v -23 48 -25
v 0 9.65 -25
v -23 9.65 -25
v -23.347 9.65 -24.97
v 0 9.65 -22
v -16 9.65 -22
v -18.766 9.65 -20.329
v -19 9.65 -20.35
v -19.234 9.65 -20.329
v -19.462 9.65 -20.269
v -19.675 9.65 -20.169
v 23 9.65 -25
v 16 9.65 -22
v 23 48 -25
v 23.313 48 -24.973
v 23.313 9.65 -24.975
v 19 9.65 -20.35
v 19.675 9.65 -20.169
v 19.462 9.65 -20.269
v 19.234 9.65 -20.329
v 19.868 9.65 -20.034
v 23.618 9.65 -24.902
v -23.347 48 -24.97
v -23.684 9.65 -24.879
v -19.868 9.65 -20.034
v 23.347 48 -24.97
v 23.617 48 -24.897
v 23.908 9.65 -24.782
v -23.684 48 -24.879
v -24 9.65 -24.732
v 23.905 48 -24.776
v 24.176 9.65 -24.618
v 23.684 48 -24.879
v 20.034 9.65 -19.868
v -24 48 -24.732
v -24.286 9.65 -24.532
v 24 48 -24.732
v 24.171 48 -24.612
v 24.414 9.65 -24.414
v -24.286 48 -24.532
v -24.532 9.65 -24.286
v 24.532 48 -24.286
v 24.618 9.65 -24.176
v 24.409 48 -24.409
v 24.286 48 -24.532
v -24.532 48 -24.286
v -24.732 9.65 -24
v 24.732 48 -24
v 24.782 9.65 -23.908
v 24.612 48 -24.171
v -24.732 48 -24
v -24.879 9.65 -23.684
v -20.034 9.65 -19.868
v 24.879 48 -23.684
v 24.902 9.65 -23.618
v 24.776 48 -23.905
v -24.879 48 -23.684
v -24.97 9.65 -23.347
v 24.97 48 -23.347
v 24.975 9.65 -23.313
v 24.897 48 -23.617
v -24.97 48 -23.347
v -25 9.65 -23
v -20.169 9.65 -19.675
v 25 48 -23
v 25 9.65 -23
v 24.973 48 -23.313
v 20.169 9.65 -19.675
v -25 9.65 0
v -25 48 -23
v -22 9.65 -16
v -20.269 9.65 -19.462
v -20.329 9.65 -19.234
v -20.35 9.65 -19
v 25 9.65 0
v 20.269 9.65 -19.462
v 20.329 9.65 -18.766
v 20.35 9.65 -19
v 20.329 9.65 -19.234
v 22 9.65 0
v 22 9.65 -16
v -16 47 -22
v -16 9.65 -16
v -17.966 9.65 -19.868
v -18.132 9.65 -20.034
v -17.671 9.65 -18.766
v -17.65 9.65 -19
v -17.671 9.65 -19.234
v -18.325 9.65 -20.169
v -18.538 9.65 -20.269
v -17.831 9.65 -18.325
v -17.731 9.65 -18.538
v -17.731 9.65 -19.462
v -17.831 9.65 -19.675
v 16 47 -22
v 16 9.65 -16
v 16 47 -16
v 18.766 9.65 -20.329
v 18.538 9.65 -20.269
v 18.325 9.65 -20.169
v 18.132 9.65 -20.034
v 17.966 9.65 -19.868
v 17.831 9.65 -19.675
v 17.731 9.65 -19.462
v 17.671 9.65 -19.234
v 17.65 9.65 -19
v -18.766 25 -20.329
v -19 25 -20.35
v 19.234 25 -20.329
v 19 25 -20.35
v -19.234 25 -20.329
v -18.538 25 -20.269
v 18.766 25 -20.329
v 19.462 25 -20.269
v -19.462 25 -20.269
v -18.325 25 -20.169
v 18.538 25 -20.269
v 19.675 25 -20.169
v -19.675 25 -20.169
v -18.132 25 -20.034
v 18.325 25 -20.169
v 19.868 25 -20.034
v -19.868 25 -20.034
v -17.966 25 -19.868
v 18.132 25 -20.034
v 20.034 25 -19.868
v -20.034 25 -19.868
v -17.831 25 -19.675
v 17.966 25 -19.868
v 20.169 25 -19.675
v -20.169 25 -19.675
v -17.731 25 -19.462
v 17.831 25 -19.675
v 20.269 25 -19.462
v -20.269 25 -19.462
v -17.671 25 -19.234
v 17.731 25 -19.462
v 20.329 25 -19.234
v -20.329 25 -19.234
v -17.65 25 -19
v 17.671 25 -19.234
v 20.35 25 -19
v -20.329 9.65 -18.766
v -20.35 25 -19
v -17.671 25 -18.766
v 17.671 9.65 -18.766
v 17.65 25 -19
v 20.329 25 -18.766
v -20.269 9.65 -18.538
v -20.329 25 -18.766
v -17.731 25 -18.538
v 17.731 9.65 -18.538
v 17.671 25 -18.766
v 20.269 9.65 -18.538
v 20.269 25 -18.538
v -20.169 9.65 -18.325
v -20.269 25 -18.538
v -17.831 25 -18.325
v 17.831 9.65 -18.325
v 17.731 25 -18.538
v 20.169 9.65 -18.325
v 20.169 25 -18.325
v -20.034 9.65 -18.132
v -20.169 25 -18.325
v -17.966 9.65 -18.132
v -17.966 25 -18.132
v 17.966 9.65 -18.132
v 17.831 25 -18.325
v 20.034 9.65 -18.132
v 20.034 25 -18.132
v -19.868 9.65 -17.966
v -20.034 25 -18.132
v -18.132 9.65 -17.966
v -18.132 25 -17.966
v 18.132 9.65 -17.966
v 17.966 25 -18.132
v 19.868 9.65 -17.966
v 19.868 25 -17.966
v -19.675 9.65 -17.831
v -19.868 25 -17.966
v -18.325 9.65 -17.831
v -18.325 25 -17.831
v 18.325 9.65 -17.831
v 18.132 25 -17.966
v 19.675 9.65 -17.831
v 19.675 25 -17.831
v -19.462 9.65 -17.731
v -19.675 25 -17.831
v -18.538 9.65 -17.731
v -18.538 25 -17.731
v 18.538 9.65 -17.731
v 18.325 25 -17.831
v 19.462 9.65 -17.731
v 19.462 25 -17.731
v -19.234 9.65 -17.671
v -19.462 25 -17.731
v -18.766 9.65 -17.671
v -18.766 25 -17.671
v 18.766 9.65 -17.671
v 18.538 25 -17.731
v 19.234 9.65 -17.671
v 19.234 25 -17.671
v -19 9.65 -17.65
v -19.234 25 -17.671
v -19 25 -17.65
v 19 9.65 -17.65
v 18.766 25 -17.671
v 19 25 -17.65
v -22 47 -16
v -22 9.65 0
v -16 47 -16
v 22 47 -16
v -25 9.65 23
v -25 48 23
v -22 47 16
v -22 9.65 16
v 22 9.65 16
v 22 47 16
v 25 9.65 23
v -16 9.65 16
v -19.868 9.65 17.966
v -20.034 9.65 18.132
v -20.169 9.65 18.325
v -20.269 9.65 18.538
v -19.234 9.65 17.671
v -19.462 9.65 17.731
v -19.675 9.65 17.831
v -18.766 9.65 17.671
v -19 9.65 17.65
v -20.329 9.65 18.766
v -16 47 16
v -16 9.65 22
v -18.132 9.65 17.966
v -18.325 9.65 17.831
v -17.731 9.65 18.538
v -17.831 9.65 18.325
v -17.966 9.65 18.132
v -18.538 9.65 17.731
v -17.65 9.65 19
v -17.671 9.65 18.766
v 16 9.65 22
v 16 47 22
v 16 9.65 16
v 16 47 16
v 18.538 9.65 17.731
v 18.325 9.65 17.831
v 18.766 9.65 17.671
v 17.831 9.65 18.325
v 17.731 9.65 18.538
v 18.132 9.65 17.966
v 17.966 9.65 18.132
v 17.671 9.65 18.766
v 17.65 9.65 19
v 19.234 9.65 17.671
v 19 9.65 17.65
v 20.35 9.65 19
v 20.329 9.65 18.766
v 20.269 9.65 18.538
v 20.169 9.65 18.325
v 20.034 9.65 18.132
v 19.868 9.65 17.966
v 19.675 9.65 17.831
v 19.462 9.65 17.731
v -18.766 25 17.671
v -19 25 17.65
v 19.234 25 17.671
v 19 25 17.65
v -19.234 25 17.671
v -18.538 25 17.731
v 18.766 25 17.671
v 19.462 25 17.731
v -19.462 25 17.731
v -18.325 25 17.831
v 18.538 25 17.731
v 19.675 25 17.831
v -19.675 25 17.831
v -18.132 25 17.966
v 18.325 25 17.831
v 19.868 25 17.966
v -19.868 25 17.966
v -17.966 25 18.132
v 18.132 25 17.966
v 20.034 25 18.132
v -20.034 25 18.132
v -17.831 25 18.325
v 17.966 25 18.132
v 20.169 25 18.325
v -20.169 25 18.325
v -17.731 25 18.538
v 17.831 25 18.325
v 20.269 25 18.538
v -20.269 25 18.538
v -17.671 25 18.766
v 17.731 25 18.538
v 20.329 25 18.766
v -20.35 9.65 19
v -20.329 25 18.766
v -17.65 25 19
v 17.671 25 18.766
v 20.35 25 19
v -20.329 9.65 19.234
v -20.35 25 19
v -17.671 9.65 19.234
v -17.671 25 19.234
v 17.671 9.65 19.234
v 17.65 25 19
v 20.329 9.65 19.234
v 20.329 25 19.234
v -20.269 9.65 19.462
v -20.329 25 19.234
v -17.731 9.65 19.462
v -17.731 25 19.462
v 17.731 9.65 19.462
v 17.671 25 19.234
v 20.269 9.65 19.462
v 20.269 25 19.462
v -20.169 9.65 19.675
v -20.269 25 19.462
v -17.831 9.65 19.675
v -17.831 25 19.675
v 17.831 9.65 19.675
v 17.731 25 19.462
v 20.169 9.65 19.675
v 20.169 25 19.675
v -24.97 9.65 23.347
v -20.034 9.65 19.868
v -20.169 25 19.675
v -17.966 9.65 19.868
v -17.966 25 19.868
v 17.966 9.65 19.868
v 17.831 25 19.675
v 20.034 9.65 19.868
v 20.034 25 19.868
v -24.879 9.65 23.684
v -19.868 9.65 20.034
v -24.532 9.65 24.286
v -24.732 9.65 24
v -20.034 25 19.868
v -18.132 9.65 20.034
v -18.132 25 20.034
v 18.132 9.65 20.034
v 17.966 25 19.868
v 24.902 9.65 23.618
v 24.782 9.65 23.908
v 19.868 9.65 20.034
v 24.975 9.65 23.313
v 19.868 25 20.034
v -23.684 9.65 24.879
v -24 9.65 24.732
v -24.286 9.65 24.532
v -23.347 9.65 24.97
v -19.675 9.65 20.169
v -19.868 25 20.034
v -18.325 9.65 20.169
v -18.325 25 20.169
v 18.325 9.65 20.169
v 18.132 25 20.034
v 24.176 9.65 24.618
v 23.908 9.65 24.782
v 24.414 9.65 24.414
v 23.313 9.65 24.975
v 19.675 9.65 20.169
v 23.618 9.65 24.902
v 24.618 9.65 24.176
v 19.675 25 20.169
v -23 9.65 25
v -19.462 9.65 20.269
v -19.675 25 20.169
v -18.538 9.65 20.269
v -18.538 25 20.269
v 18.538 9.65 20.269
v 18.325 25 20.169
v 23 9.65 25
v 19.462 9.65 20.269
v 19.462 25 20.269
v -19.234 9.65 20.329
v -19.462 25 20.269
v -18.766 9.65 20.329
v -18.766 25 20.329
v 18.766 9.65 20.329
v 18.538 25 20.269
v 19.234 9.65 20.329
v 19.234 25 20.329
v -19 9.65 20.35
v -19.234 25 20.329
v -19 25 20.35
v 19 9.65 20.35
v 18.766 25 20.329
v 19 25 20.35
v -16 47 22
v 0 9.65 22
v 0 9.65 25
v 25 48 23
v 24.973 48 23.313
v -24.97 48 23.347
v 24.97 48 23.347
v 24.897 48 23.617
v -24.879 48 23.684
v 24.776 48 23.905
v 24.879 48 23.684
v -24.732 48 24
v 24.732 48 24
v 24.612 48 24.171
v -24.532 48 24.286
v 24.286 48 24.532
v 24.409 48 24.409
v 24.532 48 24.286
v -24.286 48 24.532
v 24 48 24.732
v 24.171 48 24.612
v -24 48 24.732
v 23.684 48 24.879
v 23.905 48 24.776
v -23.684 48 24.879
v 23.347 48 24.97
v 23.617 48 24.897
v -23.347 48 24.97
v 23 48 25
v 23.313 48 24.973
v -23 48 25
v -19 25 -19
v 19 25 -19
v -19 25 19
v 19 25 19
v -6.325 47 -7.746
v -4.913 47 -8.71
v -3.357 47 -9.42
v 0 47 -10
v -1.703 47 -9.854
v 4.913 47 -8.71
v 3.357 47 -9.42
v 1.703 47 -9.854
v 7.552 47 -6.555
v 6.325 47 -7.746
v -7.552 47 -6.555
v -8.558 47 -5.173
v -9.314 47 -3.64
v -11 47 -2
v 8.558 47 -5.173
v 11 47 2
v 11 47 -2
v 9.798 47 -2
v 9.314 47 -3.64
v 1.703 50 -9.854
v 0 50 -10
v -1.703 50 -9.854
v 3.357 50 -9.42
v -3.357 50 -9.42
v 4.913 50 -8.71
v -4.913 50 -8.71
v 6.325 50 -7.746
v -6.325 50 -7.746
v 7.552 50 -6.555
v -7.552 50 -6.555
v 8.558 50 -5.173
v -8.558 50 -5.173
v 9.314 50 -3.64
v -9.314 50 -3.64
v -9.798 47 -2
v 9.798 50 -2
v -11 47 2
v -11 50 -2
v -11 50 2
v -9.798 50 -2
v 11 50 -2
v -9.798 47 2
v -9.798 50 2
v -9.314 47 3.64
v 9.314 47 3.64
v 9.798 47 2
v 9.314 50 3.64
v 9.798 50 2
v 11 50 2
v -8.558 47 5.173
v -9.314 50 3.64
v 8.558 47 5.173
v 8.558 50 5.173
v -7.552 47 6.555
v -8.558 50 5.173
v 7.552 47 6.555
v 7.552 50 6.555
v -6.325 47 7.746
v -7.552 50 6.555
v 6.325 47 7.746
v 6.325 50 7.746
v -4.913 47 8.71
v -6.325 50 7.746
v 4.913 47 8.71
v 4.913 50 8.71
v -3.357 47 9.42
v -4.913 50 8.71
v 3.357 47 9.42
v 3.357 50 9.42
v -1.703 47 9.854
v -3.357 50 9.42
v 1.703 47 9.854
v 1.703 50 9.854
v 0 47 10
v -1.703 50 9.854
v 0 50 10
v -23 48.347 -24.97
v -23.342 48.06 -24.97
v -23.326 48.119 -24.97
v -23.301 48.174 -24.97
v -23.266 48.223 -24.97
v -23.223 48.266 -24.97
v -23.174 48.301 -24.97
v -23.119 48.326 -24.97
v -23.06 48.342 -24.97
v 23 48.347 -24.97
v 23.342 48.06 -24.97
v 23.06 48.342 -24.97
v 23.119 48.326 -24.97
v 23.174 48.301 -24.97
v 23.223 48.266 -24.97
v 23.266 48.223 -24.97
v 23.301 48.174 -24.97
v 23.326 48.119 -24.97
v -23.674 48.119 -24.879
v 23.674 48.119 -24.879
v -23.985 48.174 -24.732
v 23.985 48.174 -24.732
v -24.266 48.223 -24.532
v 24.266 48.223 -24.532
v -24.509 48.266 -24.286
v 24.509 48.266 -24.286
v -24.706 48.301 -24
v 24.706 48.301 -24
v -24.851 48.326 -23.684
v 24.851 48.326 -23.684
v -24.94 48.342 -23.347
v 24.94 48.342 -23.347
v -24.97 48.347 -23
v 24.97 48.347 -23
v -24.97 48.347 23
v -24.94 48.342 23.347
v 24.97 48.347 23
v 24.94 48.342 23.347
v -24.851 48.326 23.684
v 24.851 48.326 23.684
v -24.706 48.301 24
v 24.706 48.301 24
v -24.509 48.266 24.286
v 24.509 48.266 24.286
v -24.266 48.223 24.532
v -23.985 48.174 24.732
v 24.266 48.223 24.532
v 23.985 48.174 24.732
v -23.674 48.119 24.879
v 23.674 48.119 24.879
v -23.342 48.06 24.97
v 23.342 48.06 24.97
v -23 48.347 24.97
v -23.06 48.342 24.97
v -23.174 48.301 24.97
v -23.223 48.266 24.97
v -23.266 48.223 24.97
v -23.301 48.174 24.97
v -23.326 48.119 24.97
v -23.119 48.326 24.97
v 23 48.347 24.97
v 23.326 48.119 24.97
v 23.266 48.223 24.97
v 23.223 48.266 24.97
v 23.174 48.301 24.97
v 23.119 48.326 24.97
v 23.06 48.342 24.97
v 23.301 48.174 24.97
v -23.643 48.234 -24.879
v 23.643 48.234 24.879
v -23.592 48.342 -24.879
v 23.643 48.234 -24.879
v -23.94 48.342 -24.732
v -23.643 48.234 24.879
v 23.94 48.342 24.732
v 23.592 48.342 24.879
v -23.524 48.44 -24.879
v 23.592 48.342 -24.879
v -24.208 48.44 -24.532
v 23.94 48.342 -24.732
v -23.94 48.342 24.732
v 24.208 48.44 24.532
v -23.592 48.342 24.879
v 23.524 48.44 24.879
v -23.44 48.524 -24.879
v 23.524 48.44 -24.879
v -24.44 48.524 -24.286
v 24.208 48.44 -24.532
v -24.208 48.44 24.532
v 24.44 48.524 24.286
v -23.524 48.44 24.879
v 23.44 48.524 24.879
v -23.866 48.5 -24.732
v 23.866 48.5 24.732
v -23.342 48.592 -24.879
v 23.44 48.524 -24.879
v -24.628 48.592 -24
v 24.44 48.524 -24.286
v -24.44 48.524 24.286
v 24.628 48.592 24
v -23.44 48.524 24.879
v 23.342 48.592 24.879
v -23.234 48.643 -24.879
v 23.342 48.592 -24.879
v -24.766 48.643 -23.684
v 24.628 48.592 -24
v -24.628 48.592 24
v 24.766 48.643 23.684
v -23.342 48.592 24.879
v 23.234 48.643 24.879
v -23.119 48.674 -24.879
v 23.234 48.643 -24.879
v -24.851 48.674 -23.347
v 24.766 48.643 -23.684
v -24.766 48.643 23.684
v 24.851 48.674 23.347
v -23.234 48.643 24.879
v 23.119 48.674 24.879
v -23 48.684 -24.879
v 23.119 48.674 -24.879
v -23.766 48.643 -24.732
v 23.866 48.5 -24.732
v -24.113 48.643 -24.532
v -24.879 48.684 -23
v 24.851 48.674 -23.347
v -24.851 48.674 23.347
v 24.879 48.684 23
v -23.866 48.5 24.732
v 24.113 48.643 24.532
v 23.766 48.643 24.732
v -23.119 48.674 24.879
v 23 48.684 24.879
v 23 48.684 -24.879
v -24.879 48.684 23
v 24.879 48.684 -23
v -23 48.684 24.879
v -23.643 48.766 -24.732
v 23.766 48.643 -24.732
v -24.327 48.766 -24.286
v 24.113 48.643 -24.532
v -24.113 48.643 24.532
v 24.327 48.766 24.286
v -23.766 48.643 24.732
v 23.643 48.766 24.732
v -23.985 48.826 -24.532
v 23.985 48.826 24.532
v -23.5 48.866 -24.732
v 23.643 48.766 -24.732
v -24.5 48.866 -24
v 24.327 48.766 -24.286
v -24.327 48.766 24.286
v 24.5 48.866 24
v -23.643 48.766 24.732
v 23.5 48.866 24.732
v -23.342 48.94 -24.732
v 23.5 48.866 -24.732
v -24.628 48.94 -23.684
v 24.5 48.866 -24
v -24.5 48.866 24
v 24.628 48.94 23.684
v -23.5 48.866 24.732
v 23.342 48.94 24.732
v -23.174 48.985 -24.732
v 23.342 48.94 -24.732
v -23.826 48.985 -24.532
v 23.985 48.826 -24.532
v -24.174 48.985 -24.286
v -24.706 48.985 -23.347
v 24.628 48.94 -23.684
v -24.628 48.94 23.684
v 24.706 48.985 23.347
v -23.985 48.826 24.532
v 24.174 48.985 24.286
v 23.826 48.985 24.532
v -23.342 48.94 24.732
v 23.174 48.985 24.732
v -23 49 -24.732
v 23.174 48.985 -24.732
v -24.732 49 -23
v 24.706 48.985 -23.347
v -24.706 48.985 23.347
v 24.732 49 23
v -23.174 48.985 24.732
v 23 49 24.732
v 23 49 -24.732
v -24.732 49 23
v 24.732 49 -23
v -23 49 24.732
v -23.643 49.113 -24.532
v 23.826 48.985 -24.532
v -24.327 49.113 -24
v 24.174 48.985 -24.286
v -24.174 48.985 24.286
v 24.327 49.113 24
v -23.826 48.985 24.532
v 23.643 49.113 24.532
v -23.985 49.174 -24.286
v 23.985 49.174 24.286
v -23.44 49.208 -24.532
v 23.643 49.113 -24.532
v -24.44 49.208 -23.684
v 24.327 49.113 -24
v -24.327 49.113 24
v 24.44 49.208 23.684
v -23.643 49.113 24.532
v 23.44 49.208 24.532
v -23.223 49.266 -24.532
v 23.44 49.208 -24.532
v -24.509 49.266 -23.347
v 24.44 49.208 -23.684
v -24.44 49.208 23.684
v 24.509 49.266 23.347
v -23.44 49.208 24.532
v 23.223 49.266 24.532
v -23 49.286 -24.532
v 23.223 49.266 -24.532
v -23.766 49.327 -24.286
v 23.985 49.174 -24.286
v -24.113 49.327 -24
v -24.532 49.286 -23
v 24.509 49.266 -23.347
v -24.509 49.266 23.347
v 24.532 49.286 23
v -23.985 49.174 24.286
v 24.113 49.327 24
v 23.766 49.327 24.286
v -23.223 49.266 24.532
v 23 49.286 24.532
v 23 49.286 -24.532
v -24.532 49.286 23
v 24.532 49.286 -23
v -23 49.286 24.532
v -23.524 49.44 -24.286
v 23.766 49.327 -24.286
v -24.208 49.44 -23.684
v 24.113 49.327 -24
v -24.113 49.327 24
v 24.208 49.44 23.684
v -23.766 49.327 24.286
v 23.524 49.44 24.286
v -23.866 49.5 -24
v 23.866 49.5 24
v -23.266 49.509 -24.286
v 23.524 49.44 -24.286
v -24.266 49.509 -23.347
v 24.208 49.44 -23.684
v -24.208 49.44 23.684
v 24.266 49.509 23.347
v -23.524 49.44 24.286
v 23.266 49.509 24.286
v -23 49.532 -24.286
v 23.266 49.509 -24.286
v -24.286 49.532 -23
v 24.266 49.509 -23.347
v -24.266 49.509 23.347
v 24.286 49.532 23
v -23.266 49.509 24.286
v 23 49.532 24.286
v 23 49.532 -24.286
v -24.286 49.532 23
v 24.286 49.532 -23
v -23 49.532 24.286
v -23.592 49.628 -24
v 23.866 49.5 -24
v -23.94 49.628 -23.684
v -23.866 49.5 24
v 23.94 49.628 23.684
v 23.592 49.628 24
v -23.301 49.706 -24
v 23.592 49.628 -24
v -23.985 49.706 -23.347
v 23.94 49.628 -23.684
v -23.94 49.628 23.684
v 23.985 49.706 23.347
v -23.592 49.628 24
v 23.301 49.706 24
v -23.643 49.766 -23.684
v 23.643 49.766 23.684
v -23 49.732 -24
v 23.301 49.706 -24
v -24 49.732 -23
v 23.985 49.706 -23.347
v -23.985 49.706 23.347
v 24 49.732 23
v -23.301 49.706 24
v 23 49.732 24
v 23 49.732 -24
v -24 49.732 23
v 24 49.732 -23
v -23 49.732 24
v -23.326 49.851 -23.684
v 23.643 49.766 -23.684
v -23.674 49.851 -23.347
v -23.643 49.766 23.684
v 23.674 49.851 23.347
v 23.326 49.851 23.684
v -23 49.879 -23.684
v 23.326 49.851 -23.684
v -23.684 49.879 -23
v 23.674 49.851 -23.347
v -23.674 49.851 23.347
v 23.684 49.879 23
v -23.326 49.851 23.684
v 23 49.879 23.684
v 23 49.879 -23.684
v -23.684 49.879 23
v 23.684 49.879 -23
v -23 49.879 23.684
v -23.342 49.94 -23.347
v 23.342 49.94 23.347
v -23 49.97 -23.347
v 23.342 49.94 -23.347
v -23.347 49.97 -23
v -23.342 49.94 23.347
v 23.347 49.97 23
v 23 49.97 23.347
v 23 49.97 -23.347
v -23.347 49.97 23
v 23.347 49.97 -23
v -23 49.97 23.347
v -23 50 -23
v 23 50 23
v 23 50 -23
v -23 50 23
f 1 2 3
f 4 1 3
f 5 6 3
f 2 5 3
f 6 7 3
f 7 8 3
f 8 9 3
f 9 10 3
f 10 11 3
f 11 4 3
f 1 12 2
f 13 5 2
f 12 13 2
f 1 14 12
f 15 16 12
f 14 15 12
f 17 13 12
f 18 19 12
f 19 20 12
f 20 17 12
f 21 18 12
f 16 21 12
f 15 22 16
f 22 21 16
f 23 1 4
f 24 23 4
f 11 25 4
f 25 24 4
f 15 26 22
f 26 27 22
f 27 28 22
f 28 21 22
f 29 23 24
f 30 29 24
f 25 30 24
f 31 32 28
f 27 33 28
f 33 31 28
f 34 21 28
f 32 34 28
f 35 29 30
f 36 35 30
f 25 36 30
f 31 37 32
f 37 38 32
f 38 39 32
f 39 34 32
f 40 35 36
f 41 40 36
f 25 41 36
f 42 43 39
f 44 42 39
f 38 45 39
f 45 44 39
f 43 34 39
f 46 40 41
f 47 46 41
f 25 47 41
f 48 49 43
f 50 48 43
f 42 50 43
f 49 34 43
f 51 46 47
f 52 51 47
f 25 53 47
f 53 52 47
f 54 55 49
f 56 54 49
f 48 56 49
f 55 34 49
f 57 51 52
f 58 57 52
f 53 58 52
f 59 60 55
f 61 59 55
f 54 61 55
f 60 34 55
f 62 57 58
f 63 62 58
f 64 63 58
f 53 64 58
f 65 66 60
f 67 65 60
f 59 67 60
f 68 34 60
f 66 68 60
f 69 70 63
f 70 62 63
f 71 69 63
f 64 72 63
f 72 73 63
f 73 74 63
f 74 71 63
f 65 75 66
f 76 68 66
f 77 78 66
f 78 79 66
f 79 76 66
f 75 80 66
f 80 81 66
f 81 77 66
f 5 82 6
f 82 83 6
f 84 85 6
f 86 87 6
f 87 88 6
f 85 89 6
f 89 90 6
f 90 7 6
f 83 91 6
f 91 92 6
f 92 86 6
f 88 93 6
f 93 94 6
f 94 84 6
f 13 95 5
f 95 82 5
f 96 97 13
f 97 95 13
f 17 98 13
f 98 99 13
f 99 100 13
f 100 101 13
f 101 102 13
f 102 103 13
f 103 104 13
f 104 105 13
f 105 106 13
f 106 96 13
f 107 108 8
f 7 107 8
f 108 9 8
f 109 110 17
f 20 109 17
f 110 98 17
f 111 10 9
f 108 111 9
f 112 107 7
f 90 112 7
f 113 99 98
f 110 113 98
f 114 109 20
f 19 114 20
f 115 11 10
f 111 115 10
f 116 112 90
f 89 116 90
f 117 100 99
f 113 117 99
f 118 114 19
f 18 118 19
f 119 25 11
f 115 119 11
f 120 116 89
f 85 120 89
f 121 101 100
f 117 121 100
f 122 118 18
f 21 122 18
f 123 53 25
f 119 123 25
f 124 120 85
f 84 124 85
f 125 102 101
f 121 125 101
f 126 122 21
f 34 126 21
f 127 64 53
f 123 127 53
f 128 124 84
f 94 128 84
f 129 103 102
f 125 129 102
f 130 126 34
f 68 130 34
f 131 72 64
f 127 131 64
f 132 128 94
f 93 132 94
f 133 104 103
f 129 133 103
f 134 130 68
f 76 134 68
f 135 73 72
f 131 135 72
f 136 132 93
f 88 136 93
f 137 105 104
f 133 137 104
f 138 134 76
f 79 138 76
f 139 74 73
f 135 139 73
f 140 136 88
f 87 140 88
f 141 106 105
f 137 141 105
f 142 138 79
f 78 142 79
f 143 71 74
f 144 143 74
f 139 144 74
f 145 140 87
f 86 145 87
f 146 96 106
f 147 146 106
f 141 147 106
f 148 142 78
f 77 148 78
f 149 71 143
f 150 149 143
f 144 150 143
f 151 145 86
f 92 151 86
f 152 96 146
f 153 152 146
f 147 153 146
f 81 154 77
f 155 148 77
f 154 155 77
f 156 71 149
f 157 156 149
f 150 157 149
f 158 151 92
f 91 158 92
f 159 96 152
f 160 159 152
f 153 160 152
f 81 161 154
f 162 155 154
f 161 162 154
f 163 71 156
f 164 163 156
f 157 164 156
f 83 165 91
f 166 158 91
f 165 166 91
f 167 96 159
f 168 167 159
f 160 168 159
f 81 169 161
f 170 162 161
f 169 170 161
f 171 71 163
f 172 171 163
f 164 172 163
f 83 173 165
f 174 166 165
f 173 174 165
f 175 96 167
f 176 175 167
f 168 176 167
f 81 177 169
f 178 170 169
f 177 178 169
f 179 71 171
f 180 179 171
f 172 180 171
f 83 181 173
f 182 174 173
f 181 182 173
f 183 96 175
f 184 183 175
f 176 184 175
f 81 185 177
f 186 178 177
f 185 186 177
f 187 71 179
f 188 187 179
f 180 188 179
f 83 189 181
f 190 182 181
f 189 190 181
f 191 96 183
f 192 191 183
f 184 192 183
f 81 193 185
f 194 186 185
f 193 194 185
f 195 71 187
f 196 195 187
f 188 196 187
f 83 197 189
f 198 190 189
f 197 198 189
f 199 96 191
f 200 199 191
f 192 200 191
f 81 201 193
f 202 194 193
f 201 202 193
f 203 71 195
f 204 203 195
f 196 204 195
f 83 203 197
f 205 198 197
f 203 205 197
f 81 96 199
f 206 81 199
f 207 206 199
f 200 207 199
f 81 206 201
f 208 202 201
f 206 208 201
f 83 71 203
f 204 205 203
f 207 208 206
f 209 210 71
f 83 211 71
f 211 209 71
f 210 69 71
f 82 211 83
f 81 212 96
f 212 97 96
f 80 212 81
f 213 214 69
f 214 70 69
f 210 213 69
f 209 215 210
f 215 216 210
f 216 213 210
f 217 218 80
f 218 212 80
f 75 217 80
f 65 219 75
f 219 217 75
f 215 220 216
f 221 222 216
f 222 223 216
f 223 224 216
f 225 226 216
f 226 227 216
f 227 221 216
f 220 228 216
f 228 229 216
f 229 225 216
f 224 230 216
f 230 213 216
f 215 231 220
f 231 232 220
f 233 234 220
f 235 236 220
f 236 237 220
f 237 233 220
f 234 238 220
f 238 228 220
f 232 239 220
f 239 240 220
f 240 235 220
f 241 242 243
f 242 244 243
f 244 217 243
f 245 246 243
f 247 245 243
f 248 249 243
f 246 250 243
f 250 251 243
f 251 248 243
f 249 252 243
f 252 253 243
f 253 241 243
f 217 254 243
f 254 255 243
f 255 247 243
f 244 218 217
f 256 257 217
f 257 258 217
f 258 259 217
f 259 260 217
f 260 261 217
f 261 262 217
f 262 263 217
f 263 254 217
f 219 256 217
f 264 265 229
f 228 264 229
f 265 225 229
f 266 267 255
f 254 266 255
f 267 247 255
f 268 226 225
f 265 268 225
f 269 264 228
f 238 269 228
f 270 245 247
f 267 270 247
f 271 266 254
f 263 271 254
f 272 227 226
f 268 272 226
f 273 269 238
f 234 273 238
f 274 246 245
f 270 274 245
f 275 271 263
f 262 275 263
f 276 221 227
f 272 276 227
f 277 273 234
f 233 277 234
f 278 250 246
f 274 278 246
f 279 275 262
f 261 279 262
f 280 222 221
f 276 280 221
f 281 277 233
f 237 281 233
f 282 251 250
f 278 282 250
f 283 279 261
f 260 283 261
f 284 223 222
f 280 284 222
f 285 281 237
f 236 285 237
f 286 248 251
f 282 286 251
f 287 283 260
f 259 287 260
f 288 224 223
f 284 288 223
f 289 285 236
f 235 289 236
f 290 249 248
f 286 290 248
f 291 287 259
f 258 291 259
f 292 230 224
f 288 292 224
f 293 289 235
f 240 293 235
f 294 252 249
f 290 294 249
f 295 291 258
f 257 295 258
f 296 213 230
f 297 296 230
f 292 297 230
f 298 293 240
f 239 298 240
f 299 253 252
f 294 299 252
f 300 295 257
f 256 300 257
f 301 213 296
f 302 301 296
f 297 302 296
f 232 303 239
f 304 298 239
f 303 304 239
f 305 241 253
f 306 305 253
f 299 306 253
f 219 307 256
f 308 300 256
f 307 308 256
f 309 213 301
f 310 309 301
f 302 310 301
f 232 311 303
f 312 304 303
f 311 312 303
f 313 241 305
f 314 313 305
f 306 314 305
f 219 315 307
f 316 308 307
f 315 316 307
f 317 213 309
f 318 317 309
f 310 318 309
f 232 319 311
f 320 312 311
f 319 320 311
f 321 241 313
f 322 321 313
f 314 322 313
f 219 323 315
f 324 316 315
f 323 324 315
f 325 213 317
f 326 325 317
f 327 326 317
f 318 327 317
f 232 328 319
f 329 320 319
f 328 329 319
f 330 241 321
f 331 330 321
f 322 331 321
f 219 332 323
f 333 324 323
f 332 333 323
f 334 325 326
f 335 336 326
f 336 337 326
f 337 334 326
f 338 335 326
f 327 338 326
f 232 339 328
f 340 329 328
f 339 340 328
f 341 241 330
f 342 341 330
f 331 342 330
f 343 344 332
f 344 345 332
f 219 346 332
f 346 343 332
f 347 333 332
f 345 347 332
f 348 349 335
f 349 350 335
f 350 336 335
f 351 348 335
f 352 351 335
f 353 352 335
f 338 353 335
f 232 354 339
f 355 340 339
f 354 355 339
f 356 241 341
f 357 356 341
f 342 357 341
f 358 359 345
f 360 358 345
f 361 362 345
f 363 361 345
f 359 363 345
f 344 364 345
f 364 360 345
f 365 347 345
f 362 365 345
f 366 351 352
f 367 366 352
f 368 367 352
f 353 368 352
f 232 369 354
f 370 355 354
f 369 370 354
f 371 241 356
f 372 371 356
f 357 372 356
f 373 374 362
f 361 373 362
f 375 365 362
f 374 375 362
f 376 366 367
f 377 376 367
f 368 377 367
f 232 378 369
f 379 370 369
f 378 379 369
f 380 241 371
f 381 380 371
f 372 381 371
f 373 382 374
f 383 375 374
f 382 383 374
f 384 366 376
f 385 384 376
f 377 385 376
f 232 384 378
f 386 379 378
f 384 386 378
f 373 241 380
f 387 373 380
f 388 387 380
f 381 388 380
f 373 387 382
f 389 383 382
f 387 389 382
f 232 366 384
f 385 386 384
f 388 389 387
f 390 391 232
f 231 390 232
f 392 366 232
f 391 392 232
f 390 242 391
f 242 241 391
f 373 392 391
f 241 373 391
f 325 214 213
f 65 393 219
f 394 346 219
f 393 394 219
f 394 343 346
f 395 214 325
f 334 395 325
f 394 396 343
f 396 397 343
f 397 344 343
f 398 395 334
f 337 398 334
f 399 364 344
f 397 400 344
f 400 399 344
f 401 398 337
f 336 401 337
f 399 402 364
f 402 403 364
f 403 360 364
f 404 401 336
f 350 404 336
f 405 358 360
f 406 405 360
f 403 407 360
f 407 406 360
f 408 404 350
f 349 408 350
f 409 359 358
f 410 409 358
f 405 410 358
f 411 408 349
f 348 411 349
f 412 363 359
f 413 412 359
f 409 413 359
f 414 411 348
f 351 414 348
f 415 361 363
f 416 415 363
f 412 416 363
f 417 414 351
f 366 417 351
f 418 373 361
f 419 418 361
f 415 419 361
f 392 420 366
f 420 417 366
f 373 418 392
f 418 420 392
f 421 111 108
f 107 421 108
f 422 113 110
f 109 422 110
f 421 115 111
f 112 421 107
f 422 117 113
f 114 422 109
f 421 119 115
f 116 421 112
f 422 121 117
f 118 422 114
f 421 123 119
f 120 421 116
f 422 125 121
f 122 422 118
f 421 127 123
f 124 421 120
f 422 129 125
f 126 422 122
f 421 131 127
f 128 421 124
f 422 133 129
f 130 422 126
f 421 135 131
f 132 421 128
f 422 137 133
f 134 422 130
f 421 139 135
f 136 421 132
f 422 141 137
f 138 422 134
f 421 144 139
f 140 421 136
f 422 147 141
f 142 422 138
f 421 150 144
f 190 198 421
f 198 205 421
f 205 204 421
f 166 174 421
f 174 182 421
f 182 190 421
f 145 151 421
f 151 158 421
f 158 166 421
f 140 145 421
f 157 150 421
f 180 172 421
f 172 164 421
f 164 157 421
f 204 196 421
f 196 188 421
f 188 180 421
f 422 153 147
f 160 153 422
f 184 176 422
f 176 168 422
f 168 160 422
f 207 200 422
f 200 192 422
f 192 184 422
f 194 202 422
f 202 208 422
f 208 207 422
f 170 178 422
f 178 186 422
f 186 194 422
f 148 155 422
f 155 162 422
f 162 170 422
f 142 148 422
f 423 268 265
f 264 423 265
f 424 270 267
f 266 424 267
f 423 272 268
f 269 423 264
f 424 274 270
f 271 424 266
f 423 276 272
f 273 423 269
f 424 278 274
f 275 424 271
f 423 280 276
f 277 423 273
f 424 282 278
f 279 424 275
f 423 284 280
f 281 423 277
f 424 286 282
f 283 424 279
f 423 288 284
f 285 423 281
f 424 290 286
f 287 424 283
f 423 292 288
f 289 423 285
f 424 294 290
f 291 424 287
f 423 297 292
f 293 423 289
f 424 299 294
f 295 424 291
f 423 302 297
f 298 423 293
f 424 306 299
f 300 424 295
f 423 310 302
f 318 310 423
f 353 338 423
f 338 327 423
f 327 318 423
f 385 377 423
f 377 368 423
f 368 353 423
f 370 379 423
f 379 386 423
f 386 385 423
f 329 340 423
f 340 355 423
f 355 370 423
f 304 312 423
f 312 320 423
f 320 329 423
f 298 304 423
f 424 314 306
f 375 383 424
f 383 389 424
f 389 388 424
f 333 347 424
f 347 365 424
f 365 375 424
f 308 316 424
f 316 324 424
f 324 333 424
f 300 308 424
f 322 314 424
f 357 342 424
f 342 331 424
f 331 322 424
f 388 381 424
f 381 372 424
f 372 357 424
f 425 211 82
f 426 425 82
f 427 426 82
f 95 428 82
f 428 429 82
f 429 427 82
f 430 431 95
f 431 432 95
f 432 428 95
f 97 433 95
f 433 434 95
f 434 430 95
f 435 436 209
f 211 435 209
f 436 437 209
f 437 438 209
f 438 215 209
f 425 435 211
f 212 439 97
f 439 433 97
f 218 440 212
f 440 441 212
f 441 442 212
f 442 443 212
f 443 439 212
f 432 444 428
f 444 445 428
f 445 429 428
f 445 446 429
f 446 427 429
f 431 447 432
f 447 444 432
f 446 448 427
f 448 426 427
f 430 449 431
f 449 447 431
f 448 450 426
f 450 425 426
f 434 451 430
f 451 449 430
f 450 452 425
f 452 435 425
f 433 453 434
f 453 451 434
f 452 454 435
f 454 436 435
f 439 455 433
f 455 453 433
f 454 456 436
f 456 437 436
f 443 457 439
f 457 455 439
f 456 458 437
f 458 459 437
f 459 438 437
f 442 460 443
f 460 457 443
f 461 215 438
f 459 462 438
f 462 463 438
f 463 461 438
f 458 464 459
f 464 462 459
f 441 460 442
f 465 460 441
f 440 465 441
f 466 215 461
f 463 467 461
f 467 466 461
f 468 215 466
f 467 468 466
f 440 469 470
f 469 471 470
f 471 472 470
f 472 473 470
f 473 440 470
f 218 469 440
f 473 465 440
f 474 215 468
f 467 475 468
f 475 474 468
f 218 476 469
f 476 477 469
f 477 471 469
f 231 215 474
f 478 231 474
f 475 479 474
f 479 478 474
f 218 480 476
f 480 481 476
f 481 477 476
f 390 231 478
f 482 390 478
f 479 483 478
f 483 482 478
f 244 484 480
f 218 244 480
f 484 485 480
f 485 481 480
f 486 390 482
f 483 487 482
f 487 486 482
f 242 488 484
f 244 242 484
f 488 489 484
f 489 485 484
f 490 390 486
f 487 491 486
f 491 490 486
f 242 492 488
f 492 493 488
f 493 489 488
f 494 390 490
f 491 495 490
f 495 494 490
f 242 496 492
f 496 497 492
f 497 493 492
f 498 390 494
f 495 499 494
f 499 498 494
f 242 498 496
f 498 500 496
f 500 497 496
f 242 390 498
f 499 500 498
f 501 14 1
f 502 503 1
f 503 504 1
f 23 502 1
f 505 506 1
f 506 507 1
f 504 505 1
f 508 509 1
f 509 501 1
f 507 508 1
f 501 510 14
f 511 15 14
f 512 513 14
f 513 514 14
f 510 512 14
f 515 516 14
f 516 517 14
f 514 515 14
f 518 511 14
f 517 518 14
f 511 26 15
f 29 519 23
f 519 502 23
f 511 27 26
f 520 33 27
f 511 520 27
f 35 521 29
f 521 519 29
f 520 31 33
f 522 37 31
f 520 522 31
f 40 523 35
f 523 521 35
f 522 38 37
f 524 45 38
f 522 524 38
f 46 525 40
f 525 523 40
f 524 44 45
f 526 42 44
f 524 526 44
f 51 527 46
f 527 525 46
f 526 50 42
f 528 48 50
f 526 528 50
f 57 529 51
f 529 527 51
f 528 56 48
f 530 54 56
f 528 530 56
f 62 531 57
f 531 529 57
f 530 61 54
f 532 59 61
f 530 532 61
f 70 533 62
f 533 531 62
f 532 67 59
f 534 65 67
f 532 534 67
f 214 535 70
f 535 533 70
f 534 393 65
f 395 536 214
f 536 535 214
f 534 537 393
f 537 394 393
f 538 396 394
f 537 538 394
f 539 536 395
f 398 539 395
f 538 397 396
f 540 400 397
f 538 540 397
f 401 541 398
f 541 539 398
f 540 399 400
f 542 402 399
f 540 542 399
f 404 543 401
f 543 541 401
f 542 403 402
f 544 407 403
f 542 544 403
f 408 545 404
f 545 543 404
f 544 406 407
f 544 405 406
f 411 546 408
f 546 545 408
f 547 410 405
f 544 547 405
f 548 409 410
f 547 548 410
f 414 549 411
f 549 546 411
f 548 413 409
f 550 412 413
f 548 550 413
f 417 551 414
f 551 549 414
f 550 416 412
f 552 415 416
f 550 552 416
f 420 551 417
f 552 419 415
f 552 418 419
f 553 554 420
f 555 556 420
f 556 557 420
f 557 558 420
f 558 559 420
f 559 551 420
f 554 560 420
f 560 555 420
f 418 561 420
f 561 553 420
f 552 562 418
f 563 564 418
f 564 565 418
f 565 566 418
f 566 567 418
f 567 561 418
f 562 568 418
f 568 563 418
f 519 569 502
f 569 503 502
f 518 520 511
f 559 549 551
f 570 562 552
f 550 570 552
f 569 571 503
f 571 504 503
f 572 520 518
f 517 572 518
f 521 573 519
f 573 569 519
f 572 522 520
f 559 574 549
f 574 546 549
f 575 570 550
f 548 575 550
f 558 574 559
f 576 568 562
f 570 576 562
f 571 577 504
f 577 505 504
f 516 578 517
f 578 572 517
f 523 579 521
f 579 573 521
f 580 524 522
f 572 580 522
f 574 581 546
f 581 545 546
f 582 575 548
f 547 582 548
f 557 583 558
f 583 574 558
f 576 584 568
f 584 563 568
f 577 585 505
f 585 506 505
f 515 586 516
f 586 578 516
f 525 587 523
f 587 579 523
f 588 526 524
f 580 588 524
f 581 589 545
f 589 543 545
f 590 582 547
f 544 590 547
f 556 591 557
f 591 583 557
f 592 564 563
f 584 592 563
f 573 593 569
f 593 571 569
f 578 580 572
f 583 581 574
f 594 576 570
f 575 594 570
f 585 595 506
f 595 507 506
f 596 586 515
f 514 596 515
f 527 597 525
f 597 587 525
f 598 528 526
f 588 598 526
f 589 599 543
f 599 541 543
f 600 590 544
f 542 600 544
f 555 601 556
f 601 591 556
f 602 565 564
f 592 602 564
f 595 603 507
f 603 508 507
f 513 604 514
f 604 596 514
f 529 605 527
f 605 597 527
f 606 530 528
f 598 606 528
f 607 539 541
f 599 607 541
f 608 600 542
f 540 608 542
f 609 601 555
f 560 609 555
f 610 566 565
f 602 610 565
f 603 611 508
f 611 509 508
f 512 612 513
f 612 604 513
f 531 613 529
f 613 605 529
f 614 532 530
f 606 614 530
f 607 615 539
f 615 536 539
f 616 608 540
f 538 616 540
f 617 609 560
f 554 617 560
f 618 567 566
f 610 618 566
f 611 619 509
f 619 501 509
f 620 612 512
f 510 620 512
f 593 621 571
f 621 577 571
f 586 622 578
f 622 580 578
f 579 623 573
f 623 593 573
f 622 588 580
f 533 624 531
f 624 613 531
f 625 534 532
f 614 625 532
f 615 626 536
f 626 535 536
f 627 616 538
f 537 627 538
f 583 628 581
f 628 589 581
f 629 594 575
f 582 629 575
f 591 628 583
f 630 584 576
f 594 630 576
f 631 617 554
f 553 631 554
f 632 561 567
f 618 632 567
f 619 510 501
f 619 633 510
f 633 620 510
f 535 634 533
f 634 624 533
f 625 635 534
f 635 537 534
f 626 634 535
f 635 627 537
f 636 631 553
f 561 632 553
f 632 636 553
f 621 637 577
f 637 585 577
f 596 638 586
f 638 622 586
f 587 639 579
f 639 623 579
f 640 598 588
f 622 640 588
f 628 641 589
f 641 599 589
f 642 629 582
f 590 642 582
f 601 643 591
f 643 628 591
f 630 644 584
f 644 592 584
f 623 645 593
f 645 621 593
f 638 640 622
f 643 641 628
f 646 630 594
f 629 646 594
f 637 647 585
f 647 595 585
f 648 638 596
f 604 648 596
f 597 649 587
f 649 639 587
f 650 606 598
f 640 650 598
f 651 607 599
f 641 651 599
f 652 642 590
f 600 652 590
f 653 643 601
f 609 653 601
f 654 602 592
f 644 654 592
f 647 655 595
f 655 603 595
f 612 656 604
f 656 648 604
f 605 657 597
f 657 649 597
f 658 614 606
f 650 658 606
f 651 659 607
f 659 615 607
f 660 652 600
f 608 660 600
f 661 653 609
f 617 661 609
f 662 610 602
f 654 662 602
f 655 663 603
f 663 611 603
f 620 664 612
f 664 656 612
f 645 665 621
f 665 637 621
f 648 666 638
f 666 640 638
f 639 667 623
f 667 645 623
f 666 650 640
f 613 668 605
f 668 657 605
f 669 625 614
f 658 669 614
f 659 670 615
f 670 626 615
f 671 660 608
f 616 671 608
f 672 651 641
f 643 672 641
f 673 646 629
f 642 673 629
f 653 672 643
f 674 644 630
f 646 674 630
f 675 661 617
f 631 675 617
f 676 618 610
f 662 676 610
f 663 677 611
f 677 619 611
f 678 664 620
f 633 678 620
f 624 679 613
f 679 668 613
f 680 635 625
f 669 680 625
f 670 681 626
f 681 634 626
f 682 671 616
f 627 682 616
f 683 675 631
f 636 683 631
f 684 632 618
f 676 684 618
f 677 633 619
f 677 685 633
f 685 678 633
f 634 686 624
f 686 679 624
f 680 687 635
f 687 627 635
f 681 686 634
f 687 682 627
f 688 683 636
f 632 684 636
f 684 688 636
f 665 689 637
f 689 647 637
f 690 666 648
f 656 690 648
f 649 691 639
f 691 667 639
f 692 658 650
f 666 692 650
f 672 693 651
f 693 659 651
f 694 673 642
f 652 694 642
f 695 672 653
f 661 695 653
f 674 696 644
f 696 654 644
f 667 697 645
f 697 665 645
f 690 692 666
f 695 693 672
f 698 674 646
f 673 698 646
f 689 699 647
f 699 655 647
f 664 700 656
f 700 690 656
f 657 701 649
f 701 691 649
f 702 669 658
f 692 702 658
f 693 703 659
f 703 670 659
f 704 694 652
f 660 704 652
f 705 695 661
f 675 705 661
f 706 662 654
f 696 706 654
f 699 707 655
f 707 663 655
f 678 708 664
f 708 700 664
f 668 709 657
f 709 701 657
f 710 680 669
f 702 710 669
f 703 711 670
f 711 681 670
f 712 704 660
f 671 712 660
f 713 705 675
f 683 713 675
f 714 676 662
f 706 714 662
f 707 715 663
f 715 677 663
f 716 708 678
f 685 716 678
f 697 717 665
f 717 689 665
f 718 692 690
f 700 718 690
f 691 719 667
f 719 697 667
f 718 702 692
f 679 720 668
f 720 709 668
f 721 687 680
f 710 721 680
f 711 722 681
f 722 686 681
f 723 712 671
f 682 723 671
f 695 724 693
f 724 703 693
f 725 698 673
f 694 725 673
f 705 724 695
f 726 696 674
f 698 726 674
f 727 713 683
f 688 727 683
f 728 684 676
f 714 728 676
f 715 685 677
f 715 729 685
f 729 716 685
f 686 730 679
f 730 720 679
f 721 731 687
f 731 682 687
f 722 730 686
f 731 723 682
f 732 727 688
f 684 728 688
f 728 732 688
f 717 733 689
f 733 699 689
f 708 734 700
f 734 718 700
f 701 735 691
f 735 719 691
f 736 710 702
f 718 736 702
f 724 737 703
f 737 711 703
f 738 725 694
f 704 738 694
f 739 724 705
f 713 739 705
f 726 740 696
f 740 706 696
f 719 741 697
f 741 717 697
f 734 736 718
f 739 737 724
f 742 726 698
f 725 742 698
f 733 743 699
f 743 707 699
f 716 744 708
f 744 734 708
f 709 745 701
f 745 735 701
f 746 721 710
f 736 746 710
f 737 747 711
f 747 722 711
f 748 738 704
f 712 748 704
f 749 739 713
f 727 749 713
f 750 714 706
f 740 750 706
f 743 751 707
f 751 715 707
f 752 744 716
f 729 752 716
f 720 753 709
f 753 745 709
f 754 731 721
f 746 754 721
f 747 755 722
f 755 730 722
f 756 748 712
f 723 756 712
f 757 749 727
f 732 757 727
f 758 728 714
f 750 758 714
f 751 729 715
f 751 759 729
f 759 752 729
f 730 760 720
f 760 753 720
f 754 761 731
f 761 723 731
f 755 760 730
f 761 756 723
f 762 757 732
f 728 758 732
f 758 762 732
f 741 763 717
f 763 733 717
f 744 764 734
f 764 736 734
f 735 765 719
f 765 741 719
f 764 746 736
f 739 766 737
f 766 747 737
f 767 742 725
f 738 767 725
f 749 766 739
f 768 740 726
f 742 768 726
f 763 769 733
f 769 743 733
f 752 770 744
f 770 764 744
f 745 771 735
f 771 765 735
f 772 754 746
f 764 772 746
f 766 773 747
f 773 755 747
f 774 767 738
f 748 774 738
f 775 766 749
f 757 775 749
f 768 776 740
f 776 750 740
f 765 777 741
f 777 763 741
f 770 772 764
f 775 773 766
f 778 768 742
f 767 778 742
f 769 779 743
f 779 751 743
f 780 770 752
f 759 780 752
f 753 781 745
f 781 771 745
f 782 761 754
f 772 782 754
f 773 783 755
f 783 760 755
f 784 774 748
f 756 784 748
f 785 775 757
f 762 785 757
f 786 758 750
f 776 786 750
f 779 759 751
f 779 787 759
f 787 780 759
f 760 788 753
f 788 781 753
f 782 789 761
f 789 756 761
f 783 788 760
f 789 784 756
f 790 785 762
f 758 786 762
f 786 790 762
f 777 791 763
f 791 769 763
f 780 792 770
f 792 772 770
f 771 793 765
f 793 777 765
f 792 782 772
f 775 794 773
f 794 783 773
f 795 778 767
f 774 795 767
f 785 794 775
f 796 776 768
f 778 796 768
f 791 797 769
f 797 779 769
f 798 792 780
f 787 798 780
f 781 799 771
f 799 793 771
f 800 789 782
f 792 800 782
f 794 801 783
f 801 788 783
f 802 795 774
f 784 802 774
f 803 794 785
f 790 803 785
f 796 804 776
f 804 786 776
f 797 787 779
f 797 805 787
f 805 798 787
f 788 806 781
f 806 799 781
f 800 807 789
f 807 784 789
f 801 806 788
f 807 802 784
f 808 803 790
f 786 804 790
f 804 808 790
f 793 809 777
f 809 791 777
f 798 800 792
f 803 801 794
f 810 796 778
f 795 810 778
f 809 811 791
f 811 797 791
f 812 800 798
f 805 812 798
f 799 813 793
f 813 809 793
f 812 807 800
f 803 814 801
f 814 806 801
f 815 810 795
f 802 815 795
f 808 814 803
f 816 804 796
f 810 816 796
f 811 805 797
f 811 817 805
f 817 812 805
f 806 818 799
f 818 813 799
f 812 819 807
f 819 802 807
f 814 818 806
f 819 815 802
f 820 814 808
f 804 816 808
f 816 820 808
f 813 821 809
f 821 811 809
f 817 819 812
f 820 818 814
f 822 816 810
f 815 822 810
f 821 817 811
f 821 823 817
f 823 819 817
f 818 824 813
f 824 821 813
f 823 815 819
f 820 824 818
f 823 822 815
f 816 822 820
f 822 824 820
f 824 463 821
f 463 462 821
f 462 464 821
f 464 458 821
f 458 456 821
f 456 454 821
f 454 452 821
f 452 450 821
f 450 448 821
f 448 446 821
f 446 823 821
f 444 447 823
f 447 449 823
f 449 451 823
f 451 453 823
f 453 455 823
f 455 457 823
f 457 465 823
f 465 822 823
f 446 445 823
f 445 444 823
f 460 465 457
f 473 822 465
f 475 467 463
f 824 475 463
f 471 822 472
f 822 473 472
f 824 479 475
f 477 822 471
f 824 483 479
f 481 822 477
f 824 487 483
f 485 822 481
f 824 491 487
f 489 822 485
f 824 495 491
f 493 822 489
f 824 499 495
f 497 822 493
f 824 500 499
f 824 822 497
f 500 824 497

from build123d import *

# Parameters (mm, degrees)
SKETCH1_W           = 50
SKETCH1_H           = 50
BOSS_EXTRUDE1_DEPTH = 50
SHELL1_T            = -3
FILLET1_R           = 2
SKETCH3_W           = 6
SKETCH3_H           = 6
BOSS_EXTRUDE2_DEPTH = 47
SKETCH4_R           = 1.25
CUT_EXTRUDE1_DEPTH  = 25
SKETCH5_R           = 10
CUT_EXTRUDE2_DEPTH  = 51
SKETCH8_W           = 22
SKETCH8_H           = 4
CUT_EXTRUDE4_DEPTH  = 51
SKETCH9_W           = 50
SKETCH9_H           = 9.65
CUT_EXTRUDE5_DEPTH  = 51


with BuildPart() as part:
    # Sketch1 → Boss-Extrude1 (new body)
    with BuildSketch(Plane(origin=(0, 0, 0), x_dir=(1, 0, 0), z_dir=(0, 1, 0))):
        Rectangle(SKETCH1_W, SKETCH1_H)
    extrude(amount=BOSS_EXTRUDE1_DEPTH)

    # Shell1
    shell1_openings = [part.faces().sort_by_distance(p)[0] for p in [
        (0, 0, 0),
    ]]
    offset(amount=SHELL1_T, openings=shell1_openings, kind=Kind.INTERSECTION)

    # Fillet1
    fillet1_edges = [part.edges().sort_by_distance(p)[0] for p in [
        (-25, 50, 0),
        (0, 50, 25),
        (25, 50, 0),
        (0, 50, -25),
        (25, 25, 25),
        (-25, 25, 25),
        (-25, 25, -25),
        (25, 25, -25),
    ]]
    fillet(fillet1_edges, radius=FILLET1_R)

    # Sketch3 → Boss-Extrude2 (add)
    with BuildSketch(Plane.XZ.offset(-47)):
        with Locations((19, 19)):
            Rectangle(SKETCH3_W, SKETCH3_H)
        with Locations((-19, 19)):
            Rectangle(SKETCH3_W, SKETCH3_H)
        with Locations((19, -19)):
            Rectangle(SKETCH3_W, SKETCH3_H)
        with Locations((-19, -19)):
            Rectangle(SKETCH3_W, SKETCH3_H)
    extrude(amount=BOSS_EXTRUDE2_DEPTH)

    # Sketch4 → Cut-Extrude1 (cut)
    with BuildSketch(Plane.XZ):
        with Locations((-19, 19)):
            Circle(SKETCH4_R)
        with Locations((19, 19)):
            Circle(SKETCH4_R)
        with Locations((19, -19)):
            Circle(SKETCH4_R)
        with Locations((-19, -19)):
            Circle(SKETCH4_R)
    extrude(amount=-CUT_EXTRUDE1_DEPTH, mode=Mode.SUBTRACT)

    # Sketch5 → Cut-Extrude2 (cut, through all)
    with BuildSketch(Plane(origin=(0, 50, 0), x_dir=(1, 0, 0), z_dir=(0, 1, 0))):
        Circle(SKETCH5_R)
    extrude(amount=-CUT_EXTRUDE2_DEPTH, mode=Mode.SUBTRACT)

    # Sketch8 → Cut-Extrude4 (cut, through all)
    with BuildSketch(Plane(origin=(0, 50, 0), x_dir=(1, 0, 0), z_dir=(0, 1, 0))):
        Rectangle(SKETCH8_W, SKETCH8_H)
    extrude(amount=-CUT_EXTRUDE4_DEPTH, mode=Mode.SUBTRACT)

    # Sketch9 → Cut-Extrude5 (cut, through all)
    with BuildSketch(Plane(origin=(0, 0, -25), x_dir=(-1, 0, 0), z_dir=(0, 0, -1))):
        with Locations((0, 4.825)):
            Rectangle(SKETCH9_W, SKETCH9_H)
    extrude(amount=-CUT_EXTRUDE5_DEPTH, mode=Mode.SUBTRACT)


solid = part.part
